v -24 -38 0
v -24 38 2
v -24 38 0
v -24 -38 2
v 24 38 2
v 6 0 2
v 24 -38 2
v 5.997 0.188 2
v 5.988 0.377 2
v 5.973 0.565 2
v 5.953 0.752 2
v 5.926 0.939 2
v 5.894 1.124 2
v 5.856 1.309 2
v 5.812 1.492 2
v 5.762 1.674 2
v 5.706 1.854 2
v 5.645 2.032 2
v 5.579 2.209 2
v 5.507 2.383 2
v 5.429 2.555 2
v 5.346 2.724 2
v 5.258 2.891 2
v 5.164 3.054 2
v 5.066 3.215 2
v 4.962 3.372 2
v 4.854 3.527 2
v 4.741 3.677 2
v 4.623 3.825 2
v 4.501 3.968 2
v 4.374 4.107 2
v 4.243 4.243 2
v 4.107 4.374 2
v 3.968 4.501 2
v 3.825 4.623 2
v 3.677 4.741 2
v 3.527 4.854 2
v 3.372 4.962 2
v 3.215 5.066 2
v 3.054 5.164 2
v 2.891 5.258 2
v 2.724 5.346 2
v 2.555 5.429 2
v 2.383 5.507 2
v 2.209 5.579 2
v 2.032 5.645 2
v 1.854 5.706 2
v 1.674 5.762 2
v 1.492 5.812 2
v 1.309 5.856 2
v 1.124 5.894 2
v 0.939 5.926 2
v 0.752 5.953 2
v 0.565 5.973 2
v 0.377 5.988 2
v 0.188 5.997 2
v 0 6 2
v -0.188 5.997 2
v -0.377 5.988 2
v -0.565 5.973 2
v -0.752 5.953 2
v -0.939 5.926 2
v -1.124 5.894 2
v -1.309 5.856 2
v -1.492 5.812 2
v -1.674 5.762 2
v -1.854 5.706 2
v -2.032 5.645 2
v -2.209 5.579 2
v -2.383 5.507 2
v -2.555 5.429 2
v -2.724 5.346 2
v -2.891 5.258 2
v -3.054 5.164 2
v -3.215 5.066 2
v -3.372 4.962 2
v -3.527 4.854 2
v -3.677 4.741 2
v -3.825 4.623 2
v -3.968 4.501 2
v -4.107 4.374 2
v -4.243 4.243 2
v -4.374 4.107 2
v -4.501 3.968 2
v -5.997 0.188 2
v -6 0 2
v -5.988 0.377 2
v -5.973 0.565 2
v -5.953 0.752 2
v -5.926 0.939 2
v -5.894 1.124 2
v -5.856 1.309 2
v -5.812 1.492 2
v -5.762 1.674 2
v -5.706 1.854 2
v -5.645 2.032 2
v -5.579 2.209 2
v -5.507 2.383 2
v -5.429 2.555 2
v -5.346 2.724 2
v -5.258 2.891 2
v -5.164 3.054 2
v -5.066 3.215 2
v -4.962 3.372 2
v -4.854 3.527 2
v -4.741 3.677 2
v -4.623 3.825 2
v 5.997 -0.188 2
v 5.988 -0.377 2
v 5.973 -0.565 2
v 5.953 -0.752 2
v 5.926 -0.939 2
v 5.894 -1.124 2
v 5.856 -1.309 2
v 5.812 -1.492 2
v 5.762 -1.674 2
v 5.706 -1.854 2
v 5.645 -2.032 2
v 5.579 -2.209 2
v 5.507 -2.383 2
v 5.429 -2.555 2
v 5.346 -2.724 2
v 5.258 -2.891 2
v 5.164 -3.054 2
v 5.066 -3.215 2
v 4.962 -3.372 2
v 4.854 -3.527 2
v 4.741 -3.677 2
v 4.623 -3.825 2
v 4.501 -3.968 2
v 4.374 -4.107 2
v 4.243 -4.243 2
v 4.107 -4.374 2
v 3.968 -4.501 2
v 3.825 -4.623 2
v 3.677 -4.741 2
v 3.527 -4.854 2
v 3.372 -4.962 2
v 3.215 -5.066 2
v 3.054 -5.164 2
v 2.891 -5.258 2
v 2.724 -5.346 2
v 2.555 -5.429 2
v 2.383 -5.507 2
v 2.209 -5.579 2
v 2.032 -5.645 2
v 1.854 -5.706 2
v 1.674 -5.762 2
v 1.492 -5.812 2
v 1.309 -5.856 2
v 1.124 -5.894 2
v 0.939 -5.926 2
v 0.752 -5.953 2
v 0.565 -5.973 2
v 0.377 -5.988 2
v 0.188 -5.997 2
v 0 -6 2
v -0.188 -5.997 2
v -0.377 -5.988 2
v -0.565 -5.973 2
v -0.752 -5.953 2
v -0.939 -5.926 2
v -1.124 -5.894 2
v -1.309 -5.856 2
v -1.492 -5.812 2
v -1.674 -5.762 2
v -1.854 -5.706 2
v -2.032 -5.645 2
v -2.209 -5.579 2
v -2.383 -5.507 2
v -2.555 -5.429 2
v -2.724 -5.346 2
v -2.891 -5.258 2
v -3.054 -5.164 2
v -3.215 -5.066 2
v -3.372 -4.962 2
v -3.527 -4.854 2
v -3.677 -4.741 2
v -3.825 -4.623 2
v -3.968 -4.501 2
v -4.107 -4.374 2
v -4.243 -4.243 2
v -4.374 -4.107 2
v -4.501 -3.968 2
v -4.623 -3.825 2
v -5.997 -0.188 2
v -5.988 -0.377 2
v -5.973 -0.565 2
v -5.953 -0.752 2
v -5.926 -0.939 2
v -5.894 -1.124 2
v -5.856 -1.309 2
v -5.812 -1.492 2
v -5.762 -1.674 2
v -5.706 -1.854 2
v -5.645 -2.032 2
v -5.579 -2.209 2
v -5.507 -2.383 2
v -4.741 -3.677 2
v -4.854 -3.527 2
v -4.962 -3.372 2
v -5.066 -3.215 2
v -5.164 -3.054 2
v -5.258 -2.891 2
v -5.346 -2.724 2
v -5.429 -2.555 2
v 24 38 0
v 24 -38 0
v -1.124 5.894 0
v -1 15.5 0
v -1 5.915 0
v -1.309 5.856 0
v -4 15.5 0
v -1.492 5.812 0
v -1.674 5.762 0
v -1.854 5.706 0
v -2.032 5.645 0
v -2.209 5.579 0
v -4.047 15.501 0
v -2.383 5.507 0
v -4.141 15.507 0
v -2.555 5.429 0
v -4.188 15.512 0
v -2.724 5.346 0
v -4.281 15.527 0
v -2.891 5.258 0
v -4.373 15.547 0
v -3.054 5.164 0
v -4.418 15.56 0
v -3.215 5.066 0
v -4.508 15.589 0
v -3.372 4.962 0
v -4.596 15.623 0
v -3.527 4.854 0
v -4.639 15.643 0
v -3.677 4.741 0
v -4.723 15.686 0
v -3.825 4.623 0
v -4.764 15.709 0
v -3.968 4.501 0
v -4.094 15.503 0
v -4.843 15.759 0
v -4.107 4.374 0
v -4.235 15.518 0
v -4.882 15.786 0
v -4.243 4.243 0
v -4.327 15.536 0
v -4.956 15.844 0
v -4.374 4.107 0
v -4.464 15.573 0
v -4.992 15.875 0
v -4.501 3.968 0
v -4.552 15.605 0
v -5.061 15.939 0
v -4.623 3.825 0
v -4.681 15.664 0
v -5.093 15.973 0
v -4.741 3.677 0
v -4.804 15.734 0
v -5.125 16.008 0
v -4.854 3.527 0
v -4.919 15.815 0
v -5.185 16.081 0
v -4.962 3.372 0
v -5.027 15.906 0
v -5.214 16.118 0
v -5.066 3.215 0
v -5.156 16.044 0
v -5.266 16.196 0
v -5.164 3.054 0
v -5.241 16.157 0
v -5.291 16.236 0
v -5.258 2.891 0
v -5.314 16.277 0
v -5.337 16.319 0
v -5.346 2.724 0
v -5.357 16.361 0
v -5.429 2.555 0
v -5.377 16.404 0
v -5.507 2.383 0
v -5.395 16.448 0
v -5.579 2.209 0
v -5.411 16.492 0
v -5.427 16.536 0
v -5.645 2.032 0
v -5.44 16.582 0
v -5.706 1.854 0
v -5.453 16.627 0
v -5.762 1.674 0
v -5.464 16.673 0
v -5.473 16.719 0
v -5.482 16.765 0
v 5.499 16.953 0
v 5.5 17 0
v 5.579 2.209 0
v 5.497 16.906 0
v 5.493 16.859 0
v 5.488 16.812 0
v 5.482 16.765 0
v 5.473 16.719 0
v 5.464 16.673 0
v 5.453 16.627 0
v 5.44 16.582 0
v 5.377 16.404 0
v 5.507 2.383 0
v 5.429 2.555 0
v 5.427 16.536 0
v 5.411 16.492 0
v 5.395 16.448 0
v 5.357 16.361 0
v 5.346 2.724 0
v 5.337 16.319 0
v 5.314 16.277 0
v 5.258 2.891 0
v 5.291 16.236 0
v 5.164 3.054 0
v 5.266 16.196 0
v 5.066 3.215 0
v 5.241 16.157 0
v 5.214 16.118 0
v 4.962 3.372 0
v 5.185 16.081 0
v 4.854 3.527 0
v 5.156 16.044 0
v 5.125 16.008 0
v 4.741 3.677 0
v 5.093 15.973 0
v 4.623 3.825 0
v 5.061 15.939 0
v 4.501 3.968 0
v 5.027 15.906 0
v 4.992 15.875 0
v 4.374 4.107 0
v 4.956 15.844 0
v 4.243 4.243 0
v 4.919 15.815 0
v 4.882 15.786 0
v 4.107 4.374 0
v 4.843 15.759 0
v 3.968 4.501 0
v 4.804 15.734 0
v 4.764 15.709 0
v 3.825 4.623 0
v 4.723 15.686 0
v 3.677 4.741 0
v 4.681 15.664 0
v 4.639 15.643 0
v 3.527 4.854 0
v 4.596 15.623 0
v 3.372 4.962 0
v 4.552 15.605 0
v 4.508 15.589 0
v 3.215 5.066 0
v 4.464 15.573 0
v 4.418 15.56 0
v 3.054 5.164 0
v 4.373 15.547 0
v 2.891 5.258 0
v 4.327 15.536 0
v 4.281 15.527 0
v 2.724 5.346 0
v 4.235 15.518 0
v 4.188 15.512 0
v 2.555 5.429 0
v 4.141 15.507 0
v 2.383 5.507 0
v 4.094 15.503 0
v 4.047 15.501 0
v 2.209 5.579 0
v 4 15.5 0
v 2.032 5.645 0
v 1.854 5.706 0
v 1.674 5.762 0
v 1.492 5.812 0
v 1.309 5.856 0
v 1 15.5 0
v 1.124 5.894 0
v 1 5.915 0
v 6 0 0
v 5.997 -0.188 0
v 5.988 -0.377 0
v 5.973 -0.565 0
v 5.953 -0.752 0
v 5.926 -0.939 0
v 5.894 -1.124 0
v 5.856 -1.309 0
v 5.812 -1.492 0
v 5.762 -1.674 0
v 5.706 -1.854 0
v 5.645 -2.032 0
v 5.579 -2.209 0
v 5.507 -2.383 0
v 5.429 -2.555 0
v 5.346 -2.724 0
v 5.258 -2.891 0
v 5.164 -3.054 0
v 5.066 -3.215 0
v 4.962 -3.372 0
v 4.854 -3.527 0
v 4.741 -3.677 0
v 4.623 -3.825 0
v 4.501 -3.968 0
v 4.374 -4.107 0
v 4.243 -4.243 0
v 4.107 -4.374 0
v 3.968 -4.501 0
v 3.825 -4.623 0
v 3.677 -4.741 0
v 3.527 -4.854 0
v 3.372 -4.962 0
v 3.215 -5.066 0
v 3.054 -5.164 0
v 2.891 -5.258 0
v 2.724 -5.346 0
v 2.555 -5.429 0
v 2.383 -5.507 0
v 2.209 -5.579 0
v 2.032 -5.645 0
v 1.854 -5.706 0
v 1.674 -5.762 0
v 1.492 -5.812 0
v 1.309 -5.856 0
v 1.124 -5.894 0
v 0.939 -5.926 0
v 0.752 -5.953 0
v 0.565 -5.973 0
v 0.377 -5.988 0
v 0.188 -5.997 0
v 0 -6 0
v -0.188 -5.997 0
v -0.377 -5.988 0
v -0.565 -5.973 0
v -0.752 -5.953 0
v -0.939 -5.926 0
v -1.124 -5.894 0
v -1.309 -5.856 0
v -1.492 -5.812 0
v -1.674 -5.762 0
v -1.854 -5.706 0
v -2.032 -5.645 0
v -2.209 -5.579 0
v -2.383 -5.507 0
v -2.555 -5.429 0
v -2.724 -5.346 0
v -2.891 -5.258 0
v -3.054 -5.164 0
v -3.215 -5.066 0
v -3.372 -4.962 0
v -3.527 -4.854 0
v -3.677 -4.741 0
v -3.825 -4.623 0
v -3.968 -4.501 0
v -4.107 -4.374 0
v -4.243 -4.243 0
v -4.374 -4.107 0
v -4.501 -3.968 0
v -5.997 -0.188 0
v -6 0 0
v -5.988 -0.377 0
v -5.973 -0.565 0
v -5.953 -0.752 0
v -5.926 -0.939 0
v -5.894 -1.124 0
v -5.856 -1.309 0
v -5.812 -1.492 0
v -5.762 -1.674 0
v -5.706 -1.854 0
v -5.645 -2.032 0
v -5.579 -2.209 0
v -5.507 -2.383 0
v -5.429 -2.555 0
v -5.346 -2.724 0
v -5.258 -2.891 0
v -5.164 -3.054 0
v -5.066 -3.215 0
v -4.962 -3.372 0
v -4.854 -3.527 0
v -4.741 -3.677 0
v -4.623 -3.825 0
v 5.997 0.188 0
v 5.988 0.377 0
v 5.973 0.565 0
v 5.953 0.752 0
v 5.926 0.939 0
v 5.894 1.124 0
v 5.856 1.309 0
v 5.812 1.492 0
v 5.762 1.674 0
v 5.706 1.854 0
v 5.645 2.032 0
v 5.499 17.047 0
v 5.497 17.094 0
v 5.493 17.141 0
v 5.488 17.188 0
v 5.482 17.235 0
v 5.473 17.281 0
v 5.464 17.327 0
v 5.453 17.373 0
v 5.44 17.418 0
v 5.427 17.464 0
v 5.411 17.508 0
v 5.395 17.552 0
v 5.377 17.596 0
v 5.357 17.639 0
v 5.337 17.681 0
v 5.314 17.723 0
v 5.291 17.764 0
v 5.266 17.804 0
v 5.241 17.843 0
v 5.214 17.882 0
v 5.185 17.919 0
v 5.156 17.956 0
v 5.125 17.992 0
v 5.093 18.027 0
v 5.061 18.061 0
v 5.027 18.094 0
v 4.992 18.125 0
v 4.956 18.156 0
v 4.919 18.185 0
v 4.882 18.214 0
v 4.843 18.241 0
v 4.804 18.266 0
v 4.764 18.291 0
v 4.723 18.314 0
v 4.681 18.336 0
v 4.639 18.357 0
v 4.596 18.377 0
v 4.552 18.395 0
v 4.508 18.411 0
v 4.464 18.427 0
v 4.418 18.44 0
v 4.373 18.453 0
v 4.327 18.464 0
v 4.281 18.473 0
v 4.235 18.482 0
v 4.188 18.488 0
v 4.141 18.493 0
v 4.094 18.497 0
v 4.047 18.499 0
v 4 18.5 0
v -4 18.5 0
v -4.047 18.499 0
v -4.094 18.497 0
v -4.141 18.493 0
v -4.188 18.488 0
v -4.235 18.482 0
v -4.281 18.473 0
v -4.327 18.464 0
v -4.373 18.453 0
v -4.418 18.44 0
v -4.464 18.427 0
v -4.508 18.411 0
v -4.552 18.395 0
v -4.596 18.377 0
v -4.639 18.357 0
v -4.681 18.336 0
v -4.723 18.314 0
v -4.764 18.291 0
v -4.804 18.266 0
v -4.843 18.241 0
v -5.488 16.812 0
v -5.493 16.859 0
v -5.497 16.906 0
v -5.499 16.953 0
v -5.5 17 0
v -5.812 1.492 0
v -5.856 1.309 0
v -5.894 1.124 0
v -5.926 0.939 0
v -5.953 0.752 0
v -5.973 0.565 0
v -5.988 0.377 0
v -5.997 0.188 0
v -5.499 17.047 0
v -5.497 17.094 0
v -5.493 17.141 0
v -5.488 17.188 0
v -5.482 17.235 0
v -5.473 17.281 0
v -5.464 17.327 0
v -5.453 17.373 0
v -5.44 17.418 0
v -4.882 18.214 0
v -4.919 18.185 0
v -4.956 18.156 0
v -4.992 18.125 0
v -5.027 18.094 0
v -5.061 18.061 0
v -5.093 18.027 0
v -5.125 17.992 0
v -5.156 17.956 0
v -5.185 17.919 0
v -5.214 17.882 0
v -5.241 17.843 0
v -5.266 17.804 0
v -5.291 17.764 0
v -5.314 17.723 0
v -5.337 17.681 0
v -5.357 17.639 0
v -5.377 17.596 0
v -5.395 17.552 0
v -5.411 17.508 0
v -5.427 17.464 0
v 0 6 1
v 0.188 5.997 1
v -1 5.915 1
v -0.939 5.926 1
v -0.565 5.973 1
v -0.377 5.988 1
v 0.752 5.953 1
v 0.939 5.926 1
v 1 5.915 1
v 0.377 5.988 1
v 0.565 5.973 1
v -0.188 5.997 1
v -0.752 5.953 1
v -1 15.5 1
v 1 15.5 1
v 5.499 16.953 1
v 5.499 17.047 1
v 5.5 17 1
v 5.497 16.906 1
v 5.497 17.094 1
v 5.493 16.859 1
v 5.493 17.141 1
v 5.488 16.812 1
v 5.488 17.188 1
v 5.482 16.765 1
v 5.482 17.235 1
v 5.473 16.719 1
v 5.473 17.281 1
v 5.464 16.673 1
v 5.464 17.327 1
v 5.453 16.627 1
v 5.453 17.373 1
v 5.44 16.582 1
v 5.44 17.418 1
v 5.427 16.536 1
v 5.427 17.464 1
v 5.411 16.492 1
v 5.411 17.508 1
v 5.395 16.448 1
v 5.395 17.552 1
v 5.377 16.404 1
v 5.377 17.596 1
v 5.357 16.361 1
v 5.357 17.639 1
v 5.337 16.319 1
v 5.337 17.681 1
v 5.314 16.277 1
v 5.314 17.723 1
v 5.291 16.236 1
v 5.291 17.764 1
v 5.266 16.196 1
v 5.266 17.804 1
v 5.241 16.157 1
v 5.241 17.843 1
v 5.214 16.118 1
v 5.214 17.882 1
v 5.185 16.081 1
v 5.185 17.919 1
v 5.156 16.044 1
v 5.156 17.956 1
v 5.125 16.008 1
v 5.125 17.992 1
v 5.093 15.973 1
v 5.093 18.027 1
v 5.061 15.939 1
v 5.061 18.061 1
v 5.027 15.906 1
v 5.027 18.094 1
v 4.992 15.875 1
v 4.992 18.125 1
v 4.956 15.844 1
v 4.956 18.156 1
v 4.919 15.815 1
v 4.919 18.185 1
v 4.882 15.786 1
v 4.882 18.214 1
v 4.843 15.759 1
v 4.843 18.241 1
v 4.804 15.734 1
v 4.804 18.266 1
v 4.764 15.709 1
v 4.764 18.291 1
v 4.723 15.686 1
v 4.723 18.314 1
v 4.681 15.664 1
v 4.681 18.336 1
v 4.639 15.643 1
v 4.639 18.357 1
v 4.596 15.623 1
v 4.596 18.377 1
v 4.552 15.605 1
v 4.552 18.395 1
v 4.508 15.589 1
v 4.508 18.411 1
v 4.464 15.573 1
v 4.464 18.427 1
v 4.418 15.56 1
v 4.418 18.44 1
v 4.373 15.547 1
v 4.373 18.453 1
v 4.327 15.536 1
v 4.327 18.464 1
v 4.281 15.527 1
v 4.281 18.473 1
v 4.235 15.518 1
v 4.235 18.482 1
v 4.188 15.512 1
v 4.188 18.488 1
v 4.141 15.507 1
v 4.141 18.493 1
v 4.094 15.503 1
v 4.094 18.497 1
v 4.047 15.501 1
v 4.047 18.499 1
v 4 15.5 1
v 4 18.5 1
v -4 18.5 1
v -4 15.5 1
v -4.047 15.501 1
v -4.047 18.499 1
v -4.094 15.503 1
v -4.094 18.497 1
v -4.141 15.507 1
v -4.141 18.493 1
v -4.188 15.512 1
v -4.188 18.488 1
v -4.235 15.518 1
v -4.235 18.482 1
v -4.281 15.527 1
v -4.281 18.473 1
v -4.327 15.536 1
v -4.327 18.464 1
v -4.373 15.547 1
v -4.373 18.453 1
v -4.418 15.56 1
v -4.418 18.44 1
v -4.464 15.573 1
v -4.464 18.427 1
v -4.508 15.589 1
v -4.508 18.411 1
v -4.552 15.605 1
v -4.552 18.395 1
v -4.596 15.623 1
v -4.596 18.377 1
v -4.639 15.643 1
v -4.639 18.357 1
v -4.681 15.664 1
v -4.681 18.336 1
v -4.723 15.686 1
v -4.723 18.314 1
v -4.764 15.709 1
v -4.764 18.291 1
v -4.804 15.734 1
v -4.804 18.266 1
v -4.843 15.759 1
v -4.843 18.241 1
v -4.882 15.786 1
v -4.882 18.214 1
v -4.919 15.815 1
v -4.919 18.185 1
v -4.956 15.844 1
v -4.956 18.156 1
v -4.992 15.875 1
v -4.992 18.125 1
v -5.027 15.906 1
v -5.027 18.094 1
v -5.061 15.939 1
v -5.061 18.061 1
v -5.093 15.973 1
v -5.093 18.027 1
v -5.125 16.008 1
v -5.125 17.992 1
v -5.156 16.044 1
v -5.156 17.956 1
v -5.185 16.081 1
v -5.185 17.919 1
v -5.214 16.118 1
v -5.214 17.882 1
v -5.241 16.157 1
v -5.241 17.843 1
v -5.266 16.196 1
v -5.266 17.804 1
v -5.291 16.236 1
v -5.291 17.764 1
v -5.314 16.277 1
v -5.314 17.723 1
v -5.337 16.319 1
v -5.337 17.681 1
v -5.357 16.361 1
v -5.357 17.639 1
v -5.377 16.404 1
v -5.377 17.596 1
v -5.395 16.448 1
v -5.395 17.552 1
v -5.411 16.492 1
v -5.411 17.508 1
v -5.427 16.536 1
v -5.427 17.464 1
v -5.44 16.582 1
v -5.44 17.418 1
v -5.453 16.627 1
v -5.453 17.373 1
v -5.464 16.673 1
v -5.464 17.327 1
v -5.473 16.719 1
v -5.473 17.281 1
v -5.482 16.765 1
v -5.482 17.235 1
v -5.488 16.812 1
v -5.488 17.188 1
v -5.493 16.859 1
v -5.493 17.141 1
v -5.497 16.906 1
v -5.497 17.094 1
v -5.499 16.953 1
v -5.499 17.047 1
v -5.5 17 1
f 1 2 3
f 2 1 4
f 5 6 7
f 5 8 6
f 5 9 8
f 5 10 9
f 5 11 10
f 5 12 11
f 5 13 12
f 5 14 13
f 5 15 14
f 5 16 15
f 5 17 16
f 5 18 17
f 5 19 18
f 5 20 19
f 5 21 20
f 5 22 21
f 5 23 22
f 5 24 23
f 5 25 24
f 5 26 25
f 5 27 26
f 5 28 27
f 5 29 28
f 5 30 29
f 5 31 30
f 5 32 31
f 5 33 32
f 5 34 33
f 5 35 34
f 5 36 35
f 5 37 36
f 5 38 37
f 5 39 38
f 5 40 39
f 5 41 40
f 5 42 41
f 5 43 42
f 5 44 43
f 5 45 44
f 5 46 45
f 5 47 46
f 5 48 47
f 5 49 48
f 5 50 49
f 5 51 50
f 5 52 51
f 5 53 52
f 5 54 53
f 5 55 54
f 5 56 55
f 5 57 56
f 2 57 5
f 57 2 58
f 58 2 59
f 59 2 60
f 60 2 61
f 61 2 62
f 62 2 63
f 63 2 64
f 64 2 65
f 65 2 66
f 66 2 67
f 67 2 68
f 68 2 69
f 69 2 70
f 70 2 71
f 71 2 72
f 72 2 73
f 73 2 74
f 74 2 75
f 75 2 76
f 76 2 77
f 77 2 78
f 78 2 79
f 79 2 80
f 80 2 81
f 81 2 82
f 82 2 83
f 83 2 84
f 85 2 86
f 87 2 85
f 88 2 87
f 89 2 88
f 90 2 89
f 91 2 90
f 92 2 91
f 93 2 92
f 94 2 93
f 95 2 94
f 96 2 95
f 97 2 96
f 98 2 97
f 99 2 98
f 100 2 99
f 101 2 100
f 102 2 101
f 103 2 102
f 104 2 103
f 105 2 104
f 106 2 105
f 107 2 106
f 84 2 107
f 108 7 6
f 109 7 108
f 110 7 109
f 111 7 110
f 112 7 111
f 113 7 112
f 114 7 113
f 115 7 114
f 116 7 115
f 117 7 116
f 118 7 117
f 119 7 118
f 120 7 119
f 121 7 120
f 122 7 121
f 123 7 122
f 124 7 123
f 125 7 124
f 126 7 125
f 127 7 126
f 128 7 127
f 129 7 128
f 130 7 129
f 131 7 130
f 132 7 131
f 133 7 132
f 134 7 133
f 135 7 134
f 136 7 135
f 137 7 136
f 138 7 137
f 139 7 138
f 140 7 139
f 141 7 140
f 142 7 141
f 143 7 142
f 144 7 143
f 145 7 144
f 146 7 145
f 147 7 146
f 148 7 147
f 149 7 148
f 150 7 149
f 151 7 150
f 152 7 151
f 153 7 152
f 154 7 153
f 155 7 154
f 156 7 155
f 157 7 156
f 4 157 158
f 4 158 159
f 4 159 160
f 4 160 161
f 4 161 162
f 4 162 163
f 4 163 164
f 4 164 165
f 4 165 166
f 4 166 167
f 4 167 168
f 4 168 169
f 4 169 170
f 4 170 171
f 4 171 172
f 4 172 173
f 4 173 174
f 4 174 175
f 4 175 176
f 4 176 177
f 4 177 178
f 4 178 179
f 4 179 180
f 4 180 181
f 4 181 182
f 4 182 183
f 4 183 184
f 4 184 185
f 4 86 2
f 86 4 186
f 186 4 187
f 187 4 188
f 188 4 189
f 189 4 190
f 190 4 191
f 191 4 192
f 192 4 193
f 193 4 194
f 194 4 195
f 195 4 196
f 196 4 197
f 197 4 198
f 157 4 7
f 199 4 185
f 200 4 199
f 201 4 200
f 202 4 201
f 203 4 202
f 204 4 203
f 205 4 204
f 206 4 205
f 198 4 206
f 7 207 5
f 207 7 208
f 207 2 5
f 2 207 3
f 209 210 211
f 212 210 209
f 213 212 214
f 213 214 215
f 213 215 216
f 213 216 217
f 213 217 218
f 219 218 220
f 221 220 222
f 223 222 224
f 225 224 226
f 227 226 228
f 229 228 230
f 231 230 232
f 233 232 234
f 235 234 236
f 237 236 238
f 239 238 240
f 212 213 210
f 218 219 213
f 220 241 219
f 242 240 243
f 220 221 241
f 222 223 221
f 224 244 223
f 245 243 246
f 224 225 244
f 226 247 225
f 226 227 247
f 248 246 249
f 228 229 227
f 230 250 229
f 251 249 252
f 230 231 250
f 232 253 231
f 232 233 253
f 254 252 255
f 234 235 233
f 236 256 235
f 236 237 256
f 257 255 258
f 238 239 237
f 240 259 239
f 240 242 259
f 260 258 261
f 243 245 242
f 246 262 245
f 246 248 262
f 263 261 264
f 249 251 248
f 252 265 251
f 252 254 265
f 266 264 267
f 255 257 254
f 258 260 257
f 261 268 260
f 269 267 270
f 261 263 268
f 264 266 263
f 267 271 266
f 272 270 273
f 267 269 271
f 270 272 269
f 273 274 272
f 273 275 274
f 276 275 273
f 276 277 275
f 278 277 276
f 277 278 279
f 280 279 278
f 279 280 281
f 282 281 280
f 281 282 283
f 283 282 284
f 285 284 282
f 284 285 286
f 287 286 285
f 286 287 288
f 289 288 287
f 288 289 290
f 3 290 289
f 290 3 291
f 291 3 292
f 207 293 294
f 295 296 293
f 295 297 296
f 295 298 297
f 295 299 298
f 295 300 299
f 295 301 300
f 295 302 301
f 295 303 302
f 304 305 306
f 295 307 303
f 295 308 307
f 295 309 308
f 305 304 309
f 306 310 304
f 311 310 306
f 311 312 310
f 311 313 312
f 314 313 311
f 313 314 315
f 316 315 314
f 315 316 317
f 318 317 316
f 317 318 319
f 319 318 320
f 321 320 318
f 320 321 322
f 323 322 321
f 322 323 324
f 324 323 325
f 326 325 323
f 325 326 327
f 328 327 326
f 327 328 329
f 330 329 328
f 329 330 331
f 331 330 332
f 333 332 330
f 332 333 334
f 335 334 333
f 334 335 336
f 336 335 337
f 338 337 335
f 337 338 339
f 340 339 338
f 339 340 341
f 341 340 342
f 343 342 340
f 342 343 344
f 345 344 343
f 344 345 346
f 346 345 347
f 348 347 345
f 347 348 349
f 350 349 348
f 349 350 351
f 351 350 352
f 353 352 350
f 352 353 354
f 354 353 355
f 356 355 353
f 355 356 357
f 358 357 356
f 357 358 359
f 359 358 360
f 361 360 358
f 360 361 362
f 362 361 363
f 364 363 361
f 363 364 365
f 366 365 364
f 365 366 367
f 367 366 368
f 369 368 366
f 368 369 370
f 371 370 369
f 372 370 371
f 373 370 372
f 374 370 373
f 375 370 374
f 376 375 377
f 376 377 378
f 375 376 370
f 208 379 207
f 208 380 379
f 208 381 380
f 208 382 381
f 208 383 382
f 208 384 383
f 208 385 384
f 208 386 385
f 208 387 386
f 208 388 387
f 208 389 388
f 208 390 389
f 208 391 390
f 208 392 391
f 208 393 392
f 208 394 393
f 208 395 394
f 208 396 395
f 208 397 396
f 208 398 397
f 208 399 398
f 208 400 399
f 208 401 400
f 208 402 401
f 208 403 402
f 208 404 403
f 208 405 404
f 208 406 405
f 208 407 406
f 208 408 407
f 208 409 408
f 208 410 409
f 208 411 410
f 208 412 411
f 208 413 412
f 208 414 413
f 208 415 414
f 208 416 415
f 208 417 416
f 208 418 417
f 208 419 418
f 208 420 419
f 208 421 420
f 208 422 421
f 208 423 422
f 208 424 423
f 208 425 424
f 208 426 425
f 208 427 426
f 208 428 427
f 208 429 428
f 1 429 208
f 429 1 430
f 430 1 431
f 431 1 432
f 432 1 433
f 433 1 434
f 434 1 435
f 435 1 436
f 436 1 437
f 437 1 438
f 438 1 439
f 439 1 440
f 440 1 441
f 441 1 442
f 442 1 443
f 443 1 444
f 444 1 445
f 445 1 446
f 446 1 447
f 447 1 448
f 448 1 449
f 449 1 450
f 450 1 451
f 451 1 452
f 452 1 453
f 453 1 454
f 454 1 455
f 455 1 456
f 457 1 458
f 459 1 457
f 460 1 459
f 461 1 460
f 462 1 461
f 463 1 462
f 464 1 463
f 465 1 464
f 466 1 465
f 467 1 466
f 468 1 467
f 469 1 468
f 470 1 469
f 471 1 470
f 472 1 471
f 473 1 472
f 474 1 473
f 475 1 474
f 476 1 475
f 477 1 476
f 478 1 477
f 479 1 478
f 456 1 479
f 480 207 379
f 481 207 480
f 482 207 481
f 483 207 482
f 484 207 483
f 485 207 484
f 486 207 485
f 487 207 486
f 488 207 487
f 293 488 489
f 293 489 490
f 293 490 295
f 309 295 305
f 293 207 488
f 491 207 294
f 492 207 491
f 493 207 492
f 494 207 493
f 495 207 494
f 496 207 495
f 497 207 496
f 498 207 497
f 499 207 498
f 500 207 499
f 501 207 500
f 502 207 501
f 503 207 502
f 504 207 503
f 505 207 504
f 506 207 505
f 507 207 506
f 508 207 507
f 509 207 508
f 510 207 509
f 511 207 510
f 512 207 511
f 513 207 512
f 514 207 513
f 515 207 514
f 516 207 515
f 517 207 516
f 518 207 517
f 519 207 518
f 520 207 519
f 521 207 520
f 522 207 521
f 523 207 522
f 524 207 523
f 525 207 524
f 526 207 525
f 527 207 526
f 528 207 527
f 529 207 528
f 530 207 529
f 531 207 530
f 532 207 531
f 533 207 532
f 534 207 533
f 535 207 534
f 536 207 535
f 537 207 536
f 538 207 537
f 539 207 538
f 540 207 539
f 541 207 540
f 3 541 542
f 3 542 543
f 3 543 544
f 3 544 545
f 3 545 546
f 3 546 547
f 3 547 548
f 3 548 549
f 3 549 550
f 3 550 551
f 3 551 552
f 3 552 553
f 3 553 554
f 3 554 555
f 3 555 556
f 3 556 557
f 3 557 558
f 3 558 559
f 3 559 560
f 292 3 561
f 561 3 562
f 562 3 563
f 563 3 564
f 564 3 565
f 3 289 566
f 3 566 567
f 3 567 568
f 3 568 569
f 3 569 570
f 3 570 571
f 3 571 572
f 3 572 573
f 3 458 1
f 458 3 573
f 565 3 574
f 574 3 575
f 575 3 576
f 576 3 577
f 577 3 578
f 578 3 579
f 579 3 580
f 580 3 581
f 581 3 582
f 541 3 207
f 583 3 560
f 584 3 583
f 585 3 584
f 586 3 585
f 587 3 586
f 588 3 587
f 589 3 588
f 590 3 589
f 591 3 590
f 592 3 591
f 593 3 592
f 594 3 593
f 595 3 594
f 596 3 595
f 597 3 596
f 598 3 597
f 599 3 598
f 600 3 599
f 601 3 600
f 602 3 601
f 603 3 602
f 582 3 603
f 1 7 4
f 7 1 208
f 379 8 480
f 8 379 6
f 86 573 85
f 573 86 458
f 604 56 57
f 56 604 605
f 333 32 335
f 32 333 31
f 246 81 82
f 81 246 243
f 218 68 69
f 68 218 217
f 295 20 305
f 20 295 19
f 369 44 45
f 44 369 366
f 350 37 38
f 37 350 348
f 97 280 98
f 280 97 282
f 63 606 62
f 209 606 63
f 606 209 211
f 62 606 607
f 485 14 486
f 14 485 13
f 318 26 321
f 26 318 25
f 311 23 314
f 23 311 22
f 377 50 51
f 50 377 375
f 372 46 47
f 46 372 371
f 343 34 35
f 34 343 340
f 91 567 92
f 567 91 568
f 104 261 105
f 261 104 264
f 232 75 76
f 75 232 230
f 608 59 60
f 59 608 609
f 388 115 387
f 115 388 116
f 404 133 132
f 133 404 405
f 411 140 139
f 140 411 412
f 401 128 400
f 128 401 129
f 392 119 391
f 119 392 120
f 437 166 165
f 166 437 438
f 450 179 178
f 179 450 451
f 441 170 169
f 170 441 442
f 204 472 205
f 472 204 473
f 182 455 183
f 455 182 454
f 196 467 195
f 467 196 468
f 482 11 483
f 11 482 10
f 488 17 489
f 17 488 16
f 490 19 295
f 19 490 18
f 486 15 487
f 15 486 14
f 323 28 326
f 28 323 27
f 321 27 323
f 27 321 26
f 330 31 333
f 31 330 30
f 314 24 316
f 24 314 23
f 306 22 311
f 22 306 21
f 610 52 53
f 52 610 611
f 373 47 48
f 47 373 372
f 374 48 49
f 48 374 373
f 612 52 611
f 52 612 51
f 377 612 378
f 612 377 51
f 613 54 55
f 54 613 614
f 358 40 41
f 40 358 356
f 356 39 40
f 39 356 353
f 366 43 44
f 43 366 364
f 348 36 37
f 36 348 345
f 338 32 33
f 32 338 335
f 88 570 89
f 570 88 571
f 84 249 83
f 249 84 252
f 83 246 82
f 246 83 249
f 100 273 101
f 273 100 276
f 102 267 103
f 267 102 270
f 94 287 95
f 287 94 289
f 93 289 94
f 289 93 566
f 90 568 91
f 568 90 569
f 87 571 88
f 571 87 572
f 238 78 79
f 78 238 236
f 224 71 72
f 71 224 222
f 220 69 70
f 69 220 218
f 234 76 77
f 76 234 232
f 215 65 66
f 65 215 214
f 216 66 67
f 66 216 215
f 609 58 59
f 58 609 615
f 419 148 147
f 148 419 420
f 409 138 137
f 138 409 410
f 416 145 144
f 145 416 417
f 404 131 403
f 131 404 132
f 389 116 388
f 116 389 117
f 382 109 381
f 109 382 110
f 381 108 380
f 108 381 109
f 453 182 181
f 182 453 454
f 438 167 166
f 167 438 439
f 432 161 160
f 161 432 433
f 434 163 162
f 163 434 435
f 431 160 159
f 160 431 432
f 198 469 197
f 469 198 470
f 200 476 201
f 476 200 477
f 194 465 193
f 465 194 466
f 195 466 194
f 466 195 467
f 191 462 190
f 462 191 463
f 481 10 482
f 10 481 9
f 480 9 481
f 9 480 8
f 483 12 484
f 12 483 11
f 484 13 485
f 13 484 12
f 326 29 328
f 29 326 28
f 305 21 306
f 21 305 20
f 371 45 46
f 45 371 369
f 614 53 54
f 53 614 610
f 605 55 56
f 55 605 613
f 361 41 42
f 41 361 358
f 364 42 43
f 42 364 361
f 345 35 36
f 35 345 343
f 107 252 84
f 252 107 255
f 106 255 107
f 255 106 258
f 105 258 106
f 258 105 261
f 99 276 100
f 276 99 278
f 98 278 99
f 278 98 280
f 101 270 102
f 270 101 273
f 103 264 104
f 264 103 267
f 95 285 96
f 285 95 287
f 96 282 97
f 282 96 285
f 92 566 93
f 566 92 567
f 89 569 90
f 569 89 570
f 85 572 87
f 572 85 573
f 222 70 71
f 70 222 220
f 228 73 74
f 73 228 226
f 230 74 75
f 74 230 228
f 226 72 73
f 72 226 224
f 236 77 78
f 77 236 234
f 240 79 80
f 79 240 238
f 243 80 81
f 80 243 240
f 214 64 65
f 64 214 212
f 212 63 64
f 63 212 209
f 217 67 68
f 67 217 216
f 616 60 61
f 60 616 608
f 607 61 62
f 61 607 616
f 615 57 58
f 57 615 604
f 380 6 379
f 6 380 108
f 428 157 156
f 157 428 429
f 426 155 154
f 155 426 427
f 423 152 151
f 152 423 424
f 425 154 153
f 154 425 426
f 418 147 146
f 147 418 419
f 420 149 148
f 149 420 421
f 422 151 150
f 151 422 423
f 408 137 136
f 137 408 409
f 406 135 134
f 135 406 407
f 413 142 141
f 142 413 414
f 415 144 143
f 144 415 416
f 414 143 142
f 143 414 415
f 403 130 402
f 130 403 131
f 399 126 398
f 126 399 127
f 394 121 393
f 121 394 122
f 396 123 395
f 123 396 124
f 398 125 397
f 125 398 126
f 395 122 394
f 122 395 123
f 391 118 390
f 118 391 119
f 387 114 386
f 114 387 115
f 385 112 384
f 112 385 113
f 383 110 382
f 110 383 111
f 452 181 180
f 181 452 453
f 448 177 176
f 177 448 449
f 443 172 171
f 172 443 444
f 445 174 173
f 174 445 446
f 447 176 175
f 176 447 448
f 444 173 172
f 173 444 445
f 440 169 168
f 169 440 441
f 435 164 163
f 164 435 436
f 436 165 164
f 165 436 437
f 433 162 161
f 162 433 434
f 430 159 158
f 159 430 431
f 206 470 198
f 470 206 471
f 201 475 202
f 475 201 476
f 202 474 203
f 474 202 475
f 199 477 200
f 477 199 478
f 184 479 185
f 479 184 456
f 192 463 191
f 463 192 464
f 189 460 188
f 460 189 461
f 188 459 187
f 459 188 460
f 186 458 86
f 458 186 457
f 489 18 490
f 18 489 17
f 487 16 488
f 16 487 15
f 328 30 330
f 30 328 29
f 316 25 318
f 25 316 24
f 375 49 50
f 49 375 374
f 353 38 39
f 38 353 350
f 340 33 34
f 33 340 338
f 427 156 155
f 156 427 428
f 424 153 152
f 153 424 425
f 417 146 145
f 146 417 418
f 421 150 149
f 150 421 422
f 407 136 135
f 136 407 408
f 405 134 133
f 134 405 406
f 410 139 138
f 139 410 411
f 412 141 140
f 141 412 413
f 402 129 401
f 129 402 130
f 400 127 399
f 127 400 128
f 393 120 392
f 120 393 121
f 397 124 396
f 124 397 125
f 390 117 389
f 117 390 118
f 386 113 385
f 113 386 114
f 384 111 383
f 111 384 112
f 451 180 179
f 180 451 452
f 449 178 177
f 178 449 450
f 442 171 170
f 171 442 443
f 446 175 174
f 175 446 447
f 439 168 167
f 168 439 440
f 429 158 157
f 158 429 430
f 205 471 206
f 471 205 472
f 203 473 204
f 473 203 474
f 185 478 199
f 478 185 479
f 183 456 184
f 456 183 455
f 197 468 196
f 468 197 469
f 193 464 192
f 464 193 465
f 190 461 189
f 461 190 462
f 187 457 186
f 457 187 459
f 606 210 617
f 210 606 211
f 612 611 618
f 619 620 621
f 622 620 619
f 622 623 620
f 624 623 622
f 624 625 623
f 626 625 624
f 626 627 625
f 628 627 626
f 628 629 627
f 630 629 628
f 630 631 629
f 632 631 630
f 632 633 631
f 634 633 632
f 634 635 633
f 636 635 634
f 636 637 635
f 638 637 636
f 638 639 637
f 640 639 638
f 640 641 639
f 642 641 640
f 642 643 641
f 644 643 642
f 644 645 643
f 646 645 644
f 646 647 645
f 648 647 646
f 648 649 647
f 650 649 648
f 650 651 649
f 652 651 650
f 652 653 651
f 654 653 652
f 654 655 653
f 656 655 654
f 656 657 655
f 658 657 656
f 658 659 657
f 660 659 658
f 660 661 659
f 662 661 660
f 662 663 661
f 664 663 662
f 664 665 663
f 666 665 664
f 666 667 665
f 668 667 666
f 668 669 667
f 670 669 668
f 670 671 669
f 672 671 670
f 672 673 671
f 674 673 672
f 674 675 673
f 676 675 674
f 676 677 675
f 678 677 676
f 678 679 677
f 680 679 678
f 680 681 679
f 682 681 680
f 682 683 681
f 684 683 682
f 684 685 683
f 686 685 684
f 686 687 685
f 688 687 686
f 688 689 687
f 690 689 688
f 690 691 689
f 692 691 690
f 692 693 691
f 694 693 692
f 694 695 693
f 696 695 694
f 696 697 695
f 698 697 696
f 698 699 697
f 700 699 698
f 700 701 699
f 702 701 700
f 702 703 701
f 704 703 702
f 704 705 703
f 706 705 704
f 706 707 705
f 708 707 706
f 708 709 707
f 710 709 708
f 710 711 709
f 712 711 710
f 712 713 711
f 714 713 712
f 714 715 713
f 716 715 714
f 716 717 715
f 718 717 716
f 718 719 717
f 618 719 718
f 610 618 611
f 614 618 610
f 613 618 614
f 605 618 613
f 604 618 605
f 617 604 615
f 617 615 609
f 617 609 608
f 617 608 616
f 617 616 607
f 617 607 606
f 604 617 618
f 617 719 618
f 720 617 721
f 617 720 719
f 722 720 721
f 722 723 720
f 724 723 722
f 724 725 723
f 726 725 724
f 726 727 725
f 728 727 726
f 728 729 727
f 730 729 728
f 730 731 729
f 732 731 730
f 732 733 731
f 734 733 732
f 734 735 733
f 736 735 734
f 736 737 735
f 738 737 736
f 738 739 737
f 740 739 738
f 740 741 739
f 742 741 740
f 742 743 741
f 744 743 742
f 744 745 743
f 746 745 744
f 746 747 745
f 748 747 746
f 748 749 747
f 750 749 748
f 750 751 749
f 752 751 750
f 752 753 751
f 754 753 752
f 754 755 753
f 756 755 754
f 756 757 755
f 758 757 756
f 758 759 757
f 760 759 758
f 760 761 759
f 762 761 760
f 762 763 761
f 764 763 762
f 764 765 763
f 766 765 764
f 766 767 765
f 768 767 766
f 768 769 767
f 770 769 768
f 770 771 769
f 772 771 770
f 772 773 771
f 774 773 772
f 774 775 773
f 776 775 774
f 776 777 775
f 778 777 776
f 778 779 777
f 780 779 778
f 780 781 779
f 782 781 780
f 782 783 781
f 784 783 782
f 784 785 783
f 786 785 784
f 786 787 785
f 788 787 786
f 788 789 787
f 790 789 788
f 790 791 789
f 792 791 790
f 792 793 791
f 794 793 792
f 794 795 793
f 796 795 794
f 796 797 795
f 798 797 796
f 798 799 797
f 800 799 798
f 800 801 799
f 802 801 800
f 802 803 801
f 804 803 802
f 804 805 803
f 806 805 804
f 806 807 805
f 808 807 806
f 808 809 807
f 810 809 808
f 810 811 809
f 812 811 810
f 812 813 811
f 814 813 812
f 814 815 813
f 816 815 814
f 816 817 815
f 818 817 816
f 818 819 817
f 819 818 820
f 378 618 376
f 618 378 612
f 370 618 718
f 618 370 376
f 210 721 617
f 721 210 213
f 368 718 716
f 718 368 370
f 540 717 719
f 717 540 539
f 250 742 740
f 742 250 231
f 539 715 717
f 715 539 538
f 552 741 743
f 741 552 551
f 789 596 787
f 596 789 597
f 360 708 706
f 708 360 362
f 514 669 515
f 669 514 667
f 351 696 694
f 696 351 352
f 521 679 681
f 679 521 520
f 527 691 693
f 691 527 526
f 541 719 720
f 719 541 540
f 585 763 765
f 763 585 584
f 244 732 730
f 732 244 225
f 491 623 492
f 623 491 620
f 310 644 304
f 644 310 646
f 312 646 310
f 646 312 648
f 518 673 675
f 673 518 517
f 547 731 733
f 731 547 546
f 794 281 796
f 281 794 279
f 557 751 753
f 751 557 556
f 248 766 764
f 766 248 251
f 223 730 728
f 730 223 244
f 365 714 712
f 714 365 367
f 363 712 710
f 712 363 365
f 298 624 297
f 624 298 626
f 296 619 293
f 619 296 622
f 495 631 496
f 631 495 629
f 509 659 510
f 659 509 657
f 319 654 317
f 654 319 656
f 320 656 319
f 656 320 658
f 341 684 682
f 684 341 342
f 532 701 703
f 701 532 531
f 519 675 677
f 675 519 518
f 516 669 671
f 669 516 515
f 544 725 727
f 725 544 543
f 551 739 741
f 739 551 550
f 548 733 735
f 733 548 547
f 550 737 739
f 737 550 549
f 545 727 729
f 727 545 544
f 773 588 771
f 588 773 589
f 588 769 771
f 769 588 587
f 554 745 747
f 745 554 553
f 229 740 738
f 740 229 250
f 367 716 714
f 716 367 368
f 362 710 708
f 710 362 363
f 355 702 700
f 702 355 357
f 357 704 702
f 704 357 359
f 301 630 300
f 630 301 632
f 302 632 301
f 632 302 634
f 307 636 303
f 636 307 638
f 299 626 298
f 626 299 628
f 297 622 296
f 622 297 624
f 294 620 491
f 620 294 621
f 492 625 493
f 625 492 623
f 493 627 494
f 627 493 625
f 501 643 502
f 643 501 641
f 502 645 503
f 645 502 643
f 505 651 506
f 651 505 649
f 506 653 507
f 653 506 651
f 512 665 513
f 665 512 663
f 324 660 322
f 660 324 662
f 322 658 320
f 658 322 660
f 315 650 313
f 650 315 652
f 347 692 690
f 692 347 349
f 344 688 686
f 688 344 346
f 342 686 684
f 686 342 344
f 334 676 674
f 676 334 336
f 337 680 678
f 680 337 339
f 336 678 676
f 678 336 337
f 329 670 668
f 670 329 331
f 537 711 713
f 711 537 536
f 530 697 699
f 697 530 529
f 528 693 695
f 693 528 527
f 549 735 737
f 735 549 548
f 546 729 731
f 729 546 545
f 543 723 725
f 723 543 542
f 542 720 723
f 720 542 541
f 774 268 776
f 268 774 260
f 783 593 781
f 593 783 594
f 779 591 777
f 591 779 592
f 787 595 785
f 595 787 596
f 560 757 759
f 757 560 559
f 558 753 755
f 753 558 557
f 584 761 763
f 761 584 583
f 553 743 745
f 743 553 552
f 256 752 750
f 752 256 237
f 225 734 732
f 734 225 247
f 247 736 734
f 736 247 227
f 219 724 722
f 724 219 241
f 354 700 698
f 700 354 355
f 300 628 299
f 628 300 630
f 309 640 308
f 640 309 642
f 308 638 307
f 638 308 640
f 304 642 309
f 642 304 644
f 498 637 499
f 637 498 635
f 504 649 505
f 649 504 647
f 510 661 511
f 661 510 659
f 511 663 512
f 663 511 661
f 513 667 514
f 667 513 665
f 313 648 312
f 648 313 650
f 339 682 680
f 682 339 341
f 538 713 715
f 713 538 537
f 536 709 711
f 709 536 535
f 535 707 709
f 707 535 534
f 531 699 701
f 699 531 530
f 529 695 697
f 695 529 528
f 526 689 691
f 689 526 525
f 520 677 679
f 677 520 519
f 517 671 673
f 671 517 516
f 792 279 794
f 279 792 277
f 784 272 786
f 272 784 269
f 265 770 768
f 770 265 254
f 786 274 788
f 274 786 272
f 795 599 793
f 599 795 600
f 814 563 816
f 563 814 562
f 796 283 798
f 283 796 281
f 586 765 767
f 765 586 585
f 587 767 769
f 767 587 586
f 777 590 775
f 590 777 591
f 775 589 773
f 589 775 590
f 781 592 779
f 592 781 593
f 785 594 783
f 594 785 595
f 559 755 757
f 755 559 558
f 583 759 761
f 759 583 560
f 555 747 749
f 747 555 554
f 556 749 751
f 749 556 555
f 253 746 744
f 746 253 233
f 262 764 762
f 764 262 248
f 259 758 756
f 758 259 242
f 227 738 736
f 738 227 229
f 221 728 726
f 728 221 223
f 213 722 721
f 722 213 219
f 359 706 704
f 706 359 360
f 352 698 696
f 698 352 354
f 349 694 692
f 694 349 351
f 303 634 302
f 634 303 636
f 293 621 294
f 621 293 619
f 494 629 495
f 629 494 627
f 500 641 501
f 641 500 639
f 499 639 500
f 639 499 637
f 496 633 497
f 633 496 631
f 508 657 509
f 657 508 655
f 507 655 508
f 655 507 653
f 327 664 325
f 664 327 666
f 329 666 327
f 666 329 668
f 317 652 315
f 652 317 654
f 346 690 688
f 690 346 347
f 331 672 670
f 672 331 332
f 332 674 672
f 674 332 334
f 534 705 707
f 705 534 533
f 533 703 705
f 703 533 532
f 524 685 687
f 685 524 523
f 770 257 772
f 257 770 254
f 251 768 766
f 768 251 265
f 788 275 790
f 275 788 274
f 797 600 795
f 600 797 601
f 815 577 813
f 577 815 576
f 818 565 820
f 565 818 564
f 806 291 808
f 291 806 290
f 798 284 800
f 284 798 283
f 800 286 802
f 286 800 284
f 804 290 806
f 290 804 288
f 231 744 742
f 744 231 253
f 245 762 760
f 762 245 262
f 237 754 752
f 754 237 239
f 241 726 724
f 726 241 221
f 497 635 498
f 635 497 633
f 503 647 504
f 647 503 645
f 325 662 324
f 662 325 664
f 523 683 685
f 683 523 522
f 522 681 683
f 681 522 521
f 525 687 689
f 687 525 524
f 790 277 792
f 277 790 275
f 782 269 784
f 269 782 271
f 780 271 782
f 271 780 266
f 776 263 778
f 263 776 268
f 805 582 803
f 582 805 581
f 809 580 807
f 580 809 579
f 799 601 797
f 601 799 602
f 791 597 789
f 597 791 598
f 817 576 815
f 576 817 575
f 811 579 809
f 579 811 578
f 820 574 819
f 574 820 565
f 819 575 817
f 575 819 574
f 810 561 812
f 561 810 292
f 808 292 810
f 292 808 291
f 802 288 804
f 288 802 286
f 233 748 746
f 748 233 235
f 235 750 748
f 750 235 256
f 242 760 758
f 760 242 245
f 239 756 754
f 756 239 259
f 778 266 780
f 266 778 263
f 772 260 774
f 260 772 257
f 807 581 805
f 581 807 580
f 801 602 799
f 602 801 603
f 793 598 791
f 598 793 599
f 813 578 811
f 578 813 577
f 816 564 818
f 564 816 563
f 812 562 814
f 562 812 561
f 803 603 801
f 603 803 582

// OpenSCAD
//CAPA1
$fn=200;
largo=76;
ancho=48;
alto=2;
d_cir=12;
ancho_c1=2;
largo_c1=11;

ancho_c2=3;
largo_c2=8;


difference(){
    translate([0,0,alto/2])
    {
    cube([ancho,largo,alto],center=true);
    }
    cylinder(h=alto*2,r=d_cir/2, center = true);
    translate([0,d_cir-2,0])
    {
        cube([ancho_c1,largo_c1,alto],center=true);
    }
    translate([0,d_cir/2+largo_c1,0])
    {
        hull()
        {
            cube([largo_c2,ancho_c2,alto],center=true);
            translate([ancho_c2+1,0,0])
            {
                cylinder(h=alto,r=1.5, center = true);
            }
            translate([-ancho_c2-1,0,0])
            {
                cylinder(h=alto,r=1.5, center = true);
            }
        }
    }
    
}
